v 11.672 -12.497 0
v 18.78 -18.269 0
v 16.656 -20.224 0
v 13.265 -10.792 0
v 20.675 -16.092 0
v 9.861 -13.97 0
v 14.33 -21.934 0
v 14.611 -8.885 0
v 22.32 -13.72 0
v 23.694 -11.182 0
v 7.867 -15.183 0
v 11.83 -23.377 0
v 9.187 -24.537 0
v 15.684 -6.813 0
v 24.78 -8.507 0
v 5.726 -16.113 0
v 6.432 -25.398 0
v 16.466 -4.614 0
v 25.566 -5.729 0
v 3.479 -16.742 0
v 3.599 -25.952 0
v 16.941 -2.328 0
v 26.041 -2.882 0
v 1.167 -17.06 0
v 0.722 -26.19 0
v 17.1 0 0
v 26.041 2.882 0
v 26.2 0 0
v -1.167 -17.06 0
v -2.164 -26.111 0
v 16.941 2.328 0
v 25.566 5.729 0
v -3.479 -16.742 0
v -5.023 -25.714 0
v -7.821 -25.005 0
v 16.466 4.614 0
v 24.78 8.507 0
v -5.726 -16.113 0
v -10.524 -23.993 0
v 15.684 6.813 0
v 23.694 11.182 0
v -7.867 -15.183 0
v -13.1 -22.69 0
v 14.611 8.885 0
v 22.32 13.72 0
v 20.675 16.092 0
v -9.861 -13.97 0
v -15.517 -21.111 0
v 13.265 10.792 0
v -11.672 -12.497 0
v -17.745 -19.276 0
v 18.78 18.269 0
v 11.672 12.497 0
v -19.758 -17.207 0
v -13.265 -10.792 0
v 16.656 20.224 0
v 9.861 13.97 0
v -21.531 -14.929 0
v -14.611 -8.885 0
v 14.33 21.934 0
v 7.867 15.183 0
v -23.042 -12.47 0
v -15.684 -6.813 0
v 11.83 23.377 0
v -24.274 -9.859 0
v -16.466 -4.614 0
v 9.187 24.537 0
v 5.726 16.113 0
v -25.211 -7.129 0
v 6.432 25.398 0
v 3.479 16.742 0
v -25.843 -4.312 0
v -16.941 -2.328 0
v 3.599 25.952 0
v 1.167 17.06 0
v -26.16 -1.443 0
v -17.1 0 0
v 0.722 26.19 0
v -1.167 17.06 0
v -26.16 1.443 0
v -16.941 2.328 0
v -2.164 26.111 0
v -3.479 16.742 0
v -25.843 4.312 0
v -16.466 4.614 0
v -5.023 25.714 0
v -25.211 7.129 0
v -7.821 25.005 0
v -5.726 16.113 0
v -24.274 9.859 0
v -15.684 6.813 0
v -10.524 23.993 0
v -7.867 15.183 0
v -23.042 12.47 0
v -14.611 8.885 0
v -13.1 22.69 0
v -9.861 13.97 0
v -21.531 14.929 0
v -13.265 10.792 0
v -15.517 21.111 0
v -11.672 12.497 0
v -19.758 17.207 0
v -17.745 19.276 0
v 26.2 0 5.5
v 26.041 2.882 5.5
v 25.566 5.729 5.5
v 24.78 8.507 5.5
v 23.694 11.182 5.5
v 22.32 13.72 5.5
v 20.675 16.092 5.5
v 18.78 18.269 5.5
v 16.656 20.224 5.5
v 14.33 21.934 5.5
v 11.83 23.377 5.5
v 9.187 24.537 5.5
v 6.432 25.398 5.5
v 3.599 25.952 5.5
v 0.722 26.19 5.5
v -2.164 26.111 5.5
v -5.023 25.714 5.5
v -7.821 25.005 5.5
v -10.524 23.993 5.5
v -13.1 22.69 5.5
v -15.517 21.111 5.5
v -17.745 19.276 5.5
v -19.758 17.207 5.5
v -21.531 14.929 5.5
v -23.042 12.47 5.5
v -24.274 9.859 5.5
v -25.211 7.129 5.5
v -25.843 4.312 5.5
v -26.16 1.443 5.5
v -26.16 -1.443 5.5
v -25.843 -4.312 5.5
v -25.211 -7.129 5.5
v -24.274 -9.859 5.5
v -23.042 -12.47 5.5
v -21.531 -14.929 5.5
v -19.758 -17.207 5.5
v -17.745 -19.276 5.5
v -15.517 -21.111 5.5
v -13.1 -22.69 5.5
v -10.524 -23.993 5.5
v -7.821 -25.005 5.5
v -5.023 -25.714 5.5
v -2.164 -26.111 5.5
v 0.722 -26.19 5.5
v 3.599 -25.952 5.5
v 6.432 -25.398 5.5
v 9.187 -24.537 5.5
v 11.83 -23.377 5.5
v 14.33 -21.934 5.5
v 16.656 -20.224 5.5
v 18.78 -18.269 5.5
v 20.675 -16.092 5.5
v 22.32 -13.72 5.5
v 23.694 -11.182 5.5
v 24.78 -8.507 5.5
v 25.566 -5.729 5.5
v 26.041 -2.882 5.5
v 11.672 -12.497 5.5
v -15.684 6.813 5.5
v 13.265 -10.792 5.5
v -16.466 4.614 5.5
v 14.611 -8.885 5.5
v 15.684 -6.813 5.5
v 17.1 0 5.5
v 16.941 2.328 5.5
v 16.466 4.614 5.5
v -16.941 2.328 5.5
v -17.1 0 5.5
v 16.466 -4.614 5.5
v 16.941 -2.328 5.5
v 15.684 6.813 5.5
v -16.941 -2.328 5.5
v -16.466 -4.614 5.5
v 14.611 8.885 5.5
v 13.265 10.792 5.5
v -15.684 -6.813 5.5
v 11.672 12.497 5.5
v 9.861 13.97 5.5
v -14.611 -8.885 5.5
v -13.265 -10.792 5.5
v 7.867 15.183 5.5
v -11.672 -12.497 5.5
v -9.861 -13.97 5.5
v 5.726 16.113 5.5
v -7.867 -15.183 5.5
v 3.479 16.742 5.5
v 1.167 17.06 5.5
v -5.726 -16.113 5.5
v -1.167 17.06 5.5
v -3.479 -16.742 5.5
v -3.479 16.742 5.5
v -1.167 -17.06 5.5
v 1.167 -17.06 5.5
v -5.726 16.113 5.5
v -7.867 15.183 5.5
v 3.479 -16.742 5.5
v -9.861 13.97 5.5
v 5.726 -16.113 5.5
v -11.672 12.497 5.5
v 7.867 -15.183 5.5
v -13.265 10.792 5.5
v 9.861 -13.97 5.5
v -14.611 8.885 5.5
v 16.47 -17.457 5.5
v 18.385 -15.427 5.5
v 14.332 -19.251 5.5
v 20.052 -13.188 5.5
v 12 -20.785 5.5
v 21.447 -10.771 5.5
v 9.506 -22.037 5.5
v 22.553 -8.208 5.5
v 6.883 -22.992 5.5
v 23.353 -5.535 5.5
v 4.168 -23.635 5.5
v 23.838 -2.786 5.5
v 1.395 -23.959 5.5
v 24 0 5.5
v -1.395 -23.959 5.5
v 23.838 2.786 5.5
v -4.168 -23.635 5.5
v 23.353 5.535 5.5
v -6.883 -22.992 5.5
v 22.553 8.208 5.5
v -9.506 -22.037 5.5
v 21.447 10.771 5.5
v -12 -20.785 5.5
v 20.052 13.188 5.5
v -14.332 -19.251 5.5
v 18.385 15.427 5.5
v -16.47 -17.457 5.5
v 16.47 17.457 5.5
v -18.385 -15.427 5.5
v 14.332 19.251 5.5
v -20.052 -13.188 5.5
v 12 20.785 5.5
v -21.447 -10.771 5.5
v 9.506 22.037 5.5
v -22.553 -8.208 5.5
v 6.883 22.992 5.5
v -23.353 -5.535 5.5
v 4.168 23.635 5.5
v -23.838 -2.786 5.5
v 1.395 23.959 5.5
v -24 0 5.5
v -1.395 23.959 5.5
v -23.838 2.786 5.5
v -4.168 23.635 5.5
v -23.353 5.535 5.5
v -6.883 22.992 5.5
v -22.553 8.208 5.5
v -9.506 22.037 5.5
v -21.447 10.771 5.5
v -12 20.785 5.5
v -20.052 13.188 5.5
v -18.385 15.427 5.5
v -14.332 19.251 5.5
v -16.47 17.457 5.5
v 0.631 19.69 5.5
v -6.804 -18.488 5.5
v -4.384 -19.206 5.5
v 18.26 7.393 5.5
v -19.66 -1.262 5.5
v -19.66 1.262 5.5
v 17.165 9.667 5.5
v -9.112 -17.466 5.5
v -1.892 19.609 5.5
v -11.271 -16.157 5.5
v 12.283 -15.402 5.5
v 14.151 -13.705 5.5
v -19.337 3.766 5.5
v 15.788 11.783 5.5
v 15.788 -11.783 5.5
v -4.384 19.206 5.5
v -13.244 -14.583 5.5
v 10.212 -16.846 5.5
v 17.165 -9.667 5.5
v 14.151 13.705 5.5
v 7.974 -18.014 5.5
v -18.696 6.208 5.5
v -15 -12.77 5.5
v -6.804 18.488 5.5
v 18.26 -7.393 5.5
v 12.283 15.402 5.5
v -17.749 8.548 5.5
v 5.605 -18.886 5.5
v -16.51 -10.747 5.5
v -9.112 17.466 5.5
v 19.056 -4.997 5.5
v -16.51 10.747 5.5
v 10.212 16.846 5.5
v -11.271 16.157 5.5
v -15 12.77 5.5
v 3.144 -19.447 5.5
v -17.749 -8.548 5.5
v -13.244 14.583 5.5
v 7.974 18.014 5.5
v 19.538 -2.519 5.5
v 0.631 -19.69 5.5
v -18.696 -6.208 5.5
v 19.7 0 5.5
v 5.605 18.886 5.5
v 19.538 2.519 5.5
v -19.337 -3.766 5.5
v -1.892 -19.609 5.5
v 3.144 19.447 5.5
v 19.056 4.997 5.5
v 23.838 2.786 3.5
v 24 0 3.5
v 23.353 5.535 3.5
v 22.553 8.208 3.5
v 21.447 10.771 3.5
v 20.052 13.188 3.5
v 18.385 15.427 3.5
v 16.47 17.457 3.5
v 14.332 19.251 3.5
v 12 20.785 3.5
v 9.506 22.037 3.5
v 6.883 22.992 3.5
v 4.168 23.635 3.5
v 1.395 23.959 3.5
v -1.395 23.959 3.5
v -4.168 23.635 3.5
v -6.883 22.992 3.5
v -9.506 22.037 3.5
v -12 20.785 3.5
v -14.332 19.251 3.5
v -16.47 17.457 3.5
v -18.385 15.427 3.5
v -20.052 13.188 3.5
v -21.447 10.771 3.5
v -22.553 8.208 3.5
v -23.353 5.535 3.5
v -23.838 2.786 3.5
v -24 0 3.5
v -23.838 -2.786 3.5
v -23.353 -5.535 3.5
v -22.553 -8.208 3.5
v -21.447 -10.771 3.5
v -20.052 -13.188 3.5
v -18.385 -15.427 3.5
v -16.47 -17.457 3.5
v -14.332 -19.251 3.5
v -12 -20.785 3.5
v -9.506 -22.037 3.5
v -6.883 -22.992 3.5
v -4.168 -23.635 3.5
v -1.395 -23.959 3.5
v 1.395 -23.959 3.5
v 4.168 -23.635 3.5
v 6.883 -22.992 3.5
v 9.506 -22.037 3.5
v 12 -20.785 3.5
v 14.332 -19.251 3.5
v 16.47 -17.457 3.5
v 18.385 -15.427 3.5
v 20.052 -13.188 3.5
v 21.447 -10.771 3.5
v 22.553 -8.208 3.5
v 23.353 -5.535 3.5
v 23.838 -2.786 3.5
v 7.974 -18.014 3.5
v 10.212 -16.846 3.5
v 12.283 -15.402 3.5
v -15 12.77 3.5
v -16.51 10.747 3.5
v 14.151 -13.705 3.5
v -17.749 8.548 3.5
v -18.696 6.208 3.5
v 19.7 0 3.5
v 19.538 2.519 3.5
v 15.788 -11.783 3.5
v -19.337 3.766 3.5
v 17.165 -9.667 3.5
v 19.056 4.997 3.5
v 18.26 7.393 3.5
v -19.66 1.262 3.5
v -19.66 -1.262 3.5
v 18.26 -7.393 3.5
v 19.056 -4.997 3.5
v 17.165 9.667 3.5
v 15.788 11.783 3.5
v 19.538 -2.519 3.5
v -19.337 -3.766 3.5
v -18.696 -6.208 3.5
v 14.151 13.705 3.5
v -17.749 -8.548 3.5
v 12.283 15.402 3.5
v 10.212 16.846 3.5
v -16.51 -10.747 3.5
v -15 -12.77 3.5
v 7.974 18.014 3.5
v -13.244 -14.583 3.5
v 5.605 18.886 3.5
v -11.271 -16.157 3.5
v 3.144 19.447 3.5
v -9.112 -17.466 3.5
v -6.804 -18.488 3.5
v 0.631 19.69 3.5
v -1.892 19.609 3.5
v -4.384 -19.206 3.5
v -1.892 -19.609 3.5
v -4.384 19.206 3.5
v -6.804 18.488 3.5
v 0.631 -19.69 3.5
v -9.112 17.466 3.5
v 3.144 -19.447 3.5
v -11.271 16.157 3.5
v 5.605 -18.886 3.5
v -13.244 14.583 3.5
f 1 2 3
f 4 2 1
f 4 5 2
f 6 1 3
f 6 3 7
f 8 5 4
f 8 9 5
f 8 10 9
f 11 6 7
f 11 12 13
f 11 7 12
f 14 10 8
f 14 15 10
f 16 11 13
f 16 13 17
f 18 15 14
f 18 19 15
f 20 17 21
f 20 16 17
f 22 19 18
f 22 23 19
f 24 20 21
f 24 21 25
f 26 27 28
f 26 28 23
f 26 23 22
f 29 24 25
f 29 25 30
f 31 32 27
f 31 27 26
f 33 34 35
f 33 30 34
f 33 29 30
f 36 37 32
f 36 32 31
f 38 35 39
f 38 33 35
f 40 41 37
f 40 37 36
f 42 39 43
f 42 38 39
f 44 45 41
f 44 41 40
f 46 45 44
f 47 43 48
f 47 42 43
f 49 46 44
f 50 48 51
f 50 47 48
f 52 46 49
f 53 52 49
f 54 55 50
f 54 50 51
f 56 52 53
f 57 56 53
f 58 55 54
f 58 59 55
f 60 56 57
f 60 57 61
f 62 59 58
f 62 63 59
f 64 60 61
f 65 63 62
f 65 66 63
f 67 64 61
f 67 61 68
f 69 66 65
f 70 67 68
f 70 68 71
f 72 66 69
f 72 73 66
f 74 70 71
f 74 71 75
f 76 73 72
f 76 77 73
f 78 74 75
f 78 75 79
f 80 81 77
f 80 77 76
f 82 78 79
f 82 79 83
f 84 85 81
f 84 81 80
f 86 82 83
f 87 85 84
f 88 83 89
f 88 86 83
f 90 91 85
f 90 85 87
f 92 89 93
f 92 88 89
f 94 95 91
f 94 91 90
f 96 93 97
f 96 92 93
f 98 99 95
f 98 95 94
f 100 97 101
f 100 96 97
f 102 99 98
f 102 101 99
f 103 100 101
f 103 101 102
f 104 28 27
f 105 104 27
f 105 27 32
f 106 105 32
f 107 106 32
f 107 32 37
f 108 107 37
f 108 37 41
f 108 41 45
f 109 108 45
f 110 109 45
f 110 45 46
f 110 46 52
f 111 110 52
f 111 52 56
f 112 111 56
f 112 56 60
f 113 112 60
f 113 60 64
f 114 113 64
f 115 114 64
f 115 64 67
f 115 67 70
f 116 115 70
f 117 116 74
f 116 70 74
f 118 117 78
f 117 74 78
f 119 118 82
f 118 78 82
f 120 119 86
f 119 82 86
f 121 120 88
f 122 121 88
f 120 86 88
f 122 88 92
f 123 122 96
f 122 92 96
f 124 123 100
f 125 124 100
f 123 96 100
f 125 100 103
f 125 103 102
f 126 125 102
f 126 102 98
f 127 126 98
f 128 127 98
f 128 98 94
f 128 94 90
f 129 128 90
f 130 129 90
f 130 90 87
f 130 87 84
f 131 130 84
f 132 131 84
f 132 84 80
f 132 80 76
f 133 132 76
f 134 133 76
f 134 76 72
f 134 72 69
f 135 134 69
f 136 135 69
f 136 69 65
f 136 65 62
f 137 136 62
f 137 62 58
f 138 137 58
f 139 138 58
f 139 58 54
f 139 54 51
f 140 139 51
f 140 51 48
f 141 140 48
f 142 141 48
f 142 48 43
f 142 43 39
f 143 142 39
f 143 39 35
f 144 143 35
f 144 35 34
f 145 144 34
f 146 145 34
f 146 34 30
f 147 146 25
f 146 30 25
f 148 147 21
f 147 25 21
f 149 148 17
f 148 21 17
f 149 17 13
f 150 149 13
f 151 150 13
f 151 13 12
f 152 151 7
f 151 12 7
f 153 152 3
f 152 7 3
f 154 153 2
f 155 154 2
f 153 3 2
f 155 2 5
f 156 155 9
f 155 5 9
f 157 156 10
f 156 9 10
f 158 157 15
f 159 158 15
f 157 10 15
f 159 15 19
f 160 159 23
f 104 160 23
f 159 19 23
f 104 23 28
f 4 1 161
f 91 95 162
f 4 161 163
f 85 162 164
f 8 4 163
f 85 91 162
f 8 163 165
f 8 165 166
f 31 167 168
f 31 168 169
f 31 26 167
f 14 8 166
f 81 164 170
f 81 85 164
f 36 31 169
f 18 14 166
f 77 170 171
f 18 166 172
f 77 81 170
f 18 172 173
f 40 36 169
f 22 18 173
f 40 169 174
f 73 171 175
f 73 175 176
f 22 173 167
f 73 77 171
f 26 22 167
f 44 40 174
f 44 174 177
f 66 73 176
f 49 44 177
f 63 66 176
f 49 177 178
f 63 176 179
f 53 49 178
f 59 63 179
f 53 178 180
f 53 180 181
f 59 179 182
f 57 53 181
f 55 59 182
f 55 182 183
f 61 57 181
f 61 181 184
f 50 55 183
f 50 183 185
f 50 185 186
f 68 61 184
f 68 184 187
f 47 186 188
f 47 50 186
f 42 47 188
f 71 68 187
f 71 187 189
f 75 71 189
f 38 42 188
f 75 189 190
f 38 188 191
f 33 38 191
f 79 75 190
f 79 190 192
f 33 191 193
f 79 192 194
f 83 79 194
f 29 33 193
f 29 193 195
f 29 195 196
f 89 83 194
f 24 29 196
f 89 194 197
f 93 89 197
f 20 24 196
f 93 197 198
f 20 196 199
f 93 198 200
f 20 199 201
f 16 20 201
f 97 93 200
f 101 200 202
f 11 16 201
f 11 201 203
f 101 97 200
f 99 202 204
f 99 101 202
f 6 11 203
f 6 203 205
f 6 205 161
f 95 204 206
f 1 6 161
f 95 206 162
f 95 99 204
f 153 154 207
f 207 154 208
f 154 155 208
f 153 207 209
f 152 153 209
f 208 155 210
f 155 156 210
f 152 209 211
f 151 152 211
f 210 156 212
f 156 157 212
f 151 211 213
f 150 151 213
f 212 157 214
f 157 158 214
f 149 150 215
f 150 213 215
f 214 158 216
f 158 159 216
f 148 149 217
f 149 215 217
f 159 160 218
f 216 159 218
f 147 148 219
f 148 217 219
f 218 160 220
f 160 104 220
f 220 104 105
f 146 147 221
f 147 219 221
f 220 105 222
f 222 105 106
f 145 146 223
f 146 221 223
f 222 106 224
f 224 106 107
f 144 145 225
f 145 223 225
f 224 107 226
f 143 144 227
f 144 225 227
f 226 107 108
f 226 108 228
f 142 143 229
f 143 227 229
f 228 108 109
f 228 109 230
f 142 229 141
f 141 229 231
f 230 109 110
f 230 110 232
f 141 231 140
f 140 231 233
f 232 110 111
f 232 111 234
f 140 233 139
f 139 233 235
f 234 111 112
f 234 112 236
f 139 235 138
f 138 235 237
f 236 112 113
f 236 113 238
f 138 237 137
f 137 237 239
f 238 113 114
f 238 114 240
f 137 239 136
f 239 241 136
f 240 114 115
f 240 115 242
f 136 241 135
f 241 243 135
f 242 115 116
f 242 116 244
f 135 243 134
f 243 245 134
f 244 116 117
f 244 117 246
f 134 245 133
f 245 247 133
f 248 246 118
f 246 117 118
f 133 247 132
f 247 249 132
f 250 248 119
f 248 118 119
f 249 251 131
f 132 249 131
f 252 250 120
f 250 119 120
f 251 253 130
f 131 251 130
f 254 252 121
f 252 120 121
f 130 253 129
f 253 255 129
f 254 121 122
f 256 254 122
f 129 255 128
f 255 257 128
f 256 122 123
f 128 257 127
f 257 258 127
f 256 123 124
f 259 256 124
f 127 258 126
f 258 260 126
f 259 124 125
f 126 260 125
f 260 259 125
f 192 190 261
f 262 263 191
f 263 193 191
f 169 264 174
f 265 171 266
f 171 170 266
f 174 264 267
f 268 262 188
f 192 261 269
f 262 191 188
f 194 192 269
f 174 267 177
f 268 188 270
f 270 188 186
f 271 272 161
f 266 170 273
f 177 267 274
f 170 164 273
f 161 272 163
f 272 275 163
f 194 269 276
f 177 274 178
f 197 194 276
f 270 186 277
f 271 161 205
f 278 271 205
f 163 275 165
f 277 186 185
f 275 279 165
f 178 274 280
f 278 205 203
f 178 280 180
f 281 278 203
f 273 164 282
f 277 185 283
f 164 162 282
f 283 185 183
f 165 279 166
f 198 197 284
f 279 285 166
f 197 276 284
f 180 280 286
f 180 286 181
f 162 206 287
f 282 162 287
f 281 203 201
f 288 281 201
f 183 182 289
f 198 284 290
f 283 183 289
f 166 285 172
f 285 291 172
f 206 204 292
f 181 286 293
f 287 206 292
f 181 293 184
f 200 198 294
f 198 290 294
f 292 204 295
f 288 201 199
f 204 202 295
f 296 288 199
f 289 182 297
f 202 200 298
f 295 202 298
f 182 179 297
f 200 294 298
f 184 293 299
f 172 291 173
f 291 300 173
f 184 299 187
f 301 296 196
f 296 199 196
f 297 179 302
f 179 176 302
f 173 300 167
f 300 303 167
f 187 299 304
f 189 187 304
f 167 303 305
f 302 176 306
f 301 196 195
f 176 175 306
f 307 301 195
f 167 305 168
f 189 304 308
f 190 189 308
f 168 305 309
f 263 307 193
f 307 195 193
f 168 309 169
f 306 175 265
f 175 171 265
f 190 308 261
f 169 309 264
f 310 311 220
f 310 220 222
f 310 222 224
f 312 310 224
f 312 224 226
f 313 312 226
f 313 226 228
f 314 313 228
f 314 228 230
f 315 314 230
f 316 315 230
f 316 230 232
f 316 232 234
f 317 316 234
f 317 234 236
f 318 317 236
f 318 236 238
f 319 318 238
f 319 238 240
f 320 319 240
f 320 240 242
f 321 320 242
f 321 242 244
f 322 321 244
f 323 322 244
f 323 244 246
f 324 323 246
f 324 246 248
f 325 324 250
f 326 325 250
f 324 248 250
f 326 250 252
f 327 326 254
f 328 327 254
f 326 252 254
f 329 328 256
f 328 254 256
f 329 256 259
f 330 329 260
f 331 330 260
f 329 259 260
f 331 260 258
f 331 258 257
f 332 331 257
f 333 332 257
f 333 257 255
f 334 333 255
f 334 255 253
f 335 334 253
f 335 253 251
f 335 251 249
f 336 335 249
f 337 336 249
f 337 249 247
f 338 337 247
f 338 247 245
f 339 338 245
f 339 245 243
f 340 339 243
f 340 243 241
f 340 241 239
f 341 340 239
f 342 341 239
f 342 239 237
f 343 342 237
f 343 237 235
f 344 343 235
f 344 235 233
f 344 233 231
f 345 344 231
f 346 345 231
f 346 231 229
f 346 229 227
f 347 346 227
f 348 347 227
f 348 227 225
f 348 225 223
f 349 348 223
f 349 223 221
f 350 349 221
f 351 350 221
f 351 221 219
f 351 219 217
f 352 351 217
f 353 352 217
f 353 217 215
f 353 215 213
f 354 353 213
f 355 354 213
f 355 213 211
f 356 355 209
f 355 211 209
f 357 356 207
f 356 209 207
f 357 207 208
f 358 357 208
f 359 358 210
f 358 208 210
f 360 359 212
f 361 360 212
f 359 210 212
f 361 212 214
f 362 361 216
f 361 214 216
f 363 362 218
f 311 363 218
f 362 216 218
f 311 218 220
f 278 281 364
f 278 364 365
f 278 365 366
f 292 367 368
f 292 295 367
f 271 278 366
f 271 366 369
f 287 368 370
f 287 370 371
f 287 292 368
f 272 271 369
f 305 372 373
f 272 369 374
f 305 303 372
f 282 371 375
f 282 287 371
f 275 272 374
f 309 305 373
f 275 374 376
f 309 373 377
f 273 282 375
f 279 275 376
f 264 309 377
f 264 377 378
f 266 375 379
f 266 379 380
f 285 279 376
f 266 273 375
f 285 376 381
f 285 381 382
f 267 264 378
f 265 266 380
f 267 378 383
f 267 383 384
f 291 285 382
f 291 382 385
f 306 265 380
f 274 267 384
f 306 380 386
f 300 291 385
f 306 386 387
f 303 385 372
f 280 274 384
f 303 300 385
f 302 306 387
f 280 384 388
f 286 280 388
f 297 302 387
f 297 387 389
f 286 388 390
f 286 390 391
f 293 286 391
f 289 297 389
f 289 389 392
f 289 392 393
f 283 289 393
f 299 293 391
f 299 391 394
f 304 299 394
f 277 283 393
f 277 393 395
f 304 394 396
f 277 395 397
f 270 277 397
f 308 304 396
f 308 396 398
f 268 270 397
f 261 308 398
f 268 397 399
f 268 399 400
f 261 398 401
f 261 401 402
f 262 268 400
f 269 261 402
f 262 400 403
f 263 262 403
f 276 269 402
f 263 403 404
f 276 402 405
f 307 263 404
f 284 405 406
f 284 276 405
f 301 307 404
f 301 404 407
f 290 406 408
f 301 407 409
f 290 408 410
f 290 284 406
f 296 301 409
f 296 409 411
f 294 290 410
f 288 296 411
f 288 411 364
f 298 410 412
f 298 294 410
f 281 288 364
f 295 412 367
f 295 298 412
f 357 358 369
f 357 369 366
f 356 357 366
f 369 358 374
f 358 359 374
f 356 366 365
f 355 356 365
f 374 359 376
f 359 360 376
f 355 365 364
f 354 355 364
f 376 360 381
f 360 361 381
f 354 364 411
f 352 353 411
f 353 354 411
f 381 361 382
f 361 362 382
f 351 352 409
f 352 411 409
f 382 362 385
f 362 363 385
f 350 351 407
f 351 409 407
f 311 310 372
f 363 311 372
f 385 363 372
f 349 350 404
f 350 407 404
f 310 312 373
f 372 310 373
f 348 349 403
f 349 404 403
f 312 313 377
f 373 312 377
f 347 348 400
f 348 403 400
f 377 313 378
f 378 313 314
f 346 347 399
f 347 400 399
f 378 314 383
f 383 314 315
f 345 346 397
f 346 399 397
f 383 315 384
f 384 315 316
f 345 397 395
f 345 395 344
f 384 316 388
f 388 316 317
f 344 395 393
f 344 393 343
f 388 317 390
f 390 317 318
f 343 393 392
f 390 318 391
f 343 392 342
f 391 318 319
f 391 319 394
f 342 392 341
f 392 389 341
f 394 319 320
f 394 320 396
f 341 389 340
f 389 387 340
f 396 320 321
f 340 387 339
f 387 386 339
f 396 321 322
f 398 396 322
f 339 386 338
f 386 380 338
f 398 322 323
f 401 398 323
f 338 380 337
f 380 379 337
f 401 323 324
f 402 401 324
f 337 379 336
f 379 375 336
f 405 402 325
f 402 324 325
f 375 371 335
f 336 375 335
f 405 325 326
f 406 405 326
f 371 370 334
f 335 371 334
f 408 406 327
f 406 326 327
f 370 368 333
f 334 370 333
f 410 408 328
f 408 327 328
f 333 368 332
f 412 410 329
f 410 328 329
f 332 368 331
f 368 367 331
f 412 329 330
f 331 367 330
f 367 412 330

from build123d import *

# Parameters (mm, degrees)
SKETCH_R      = 26.2
SKETCH_R_2    = 17.1
PAD_DEPTH     = 5.5
SKETCH001_R   = 24
SKETCH001_R_2 = 19.7
POCKET_DEPTH  = 2


with BuildPart() as part:
    # Sketch → Pad (new body)
    with BuildSketch(Plane.XY):
        Circle(SKETCH_R)
        Circle(SKETCH_R_2, mode=Mode.SUBTRACT)
    extrude(amount=PAD_DEPTH)

    # Sketch001 → Pocket (cut)
    with BuildSketch(Plane.XY.offset(5.5)):
        Circle(SKETCH001_R)
        Circle(SKETCH001_R_2, mode=Mode.SUBTRACT)
    extrude(amount=-POCKET_DEPTH, mode=Mode.SUBTRACT)


solid = part.part
